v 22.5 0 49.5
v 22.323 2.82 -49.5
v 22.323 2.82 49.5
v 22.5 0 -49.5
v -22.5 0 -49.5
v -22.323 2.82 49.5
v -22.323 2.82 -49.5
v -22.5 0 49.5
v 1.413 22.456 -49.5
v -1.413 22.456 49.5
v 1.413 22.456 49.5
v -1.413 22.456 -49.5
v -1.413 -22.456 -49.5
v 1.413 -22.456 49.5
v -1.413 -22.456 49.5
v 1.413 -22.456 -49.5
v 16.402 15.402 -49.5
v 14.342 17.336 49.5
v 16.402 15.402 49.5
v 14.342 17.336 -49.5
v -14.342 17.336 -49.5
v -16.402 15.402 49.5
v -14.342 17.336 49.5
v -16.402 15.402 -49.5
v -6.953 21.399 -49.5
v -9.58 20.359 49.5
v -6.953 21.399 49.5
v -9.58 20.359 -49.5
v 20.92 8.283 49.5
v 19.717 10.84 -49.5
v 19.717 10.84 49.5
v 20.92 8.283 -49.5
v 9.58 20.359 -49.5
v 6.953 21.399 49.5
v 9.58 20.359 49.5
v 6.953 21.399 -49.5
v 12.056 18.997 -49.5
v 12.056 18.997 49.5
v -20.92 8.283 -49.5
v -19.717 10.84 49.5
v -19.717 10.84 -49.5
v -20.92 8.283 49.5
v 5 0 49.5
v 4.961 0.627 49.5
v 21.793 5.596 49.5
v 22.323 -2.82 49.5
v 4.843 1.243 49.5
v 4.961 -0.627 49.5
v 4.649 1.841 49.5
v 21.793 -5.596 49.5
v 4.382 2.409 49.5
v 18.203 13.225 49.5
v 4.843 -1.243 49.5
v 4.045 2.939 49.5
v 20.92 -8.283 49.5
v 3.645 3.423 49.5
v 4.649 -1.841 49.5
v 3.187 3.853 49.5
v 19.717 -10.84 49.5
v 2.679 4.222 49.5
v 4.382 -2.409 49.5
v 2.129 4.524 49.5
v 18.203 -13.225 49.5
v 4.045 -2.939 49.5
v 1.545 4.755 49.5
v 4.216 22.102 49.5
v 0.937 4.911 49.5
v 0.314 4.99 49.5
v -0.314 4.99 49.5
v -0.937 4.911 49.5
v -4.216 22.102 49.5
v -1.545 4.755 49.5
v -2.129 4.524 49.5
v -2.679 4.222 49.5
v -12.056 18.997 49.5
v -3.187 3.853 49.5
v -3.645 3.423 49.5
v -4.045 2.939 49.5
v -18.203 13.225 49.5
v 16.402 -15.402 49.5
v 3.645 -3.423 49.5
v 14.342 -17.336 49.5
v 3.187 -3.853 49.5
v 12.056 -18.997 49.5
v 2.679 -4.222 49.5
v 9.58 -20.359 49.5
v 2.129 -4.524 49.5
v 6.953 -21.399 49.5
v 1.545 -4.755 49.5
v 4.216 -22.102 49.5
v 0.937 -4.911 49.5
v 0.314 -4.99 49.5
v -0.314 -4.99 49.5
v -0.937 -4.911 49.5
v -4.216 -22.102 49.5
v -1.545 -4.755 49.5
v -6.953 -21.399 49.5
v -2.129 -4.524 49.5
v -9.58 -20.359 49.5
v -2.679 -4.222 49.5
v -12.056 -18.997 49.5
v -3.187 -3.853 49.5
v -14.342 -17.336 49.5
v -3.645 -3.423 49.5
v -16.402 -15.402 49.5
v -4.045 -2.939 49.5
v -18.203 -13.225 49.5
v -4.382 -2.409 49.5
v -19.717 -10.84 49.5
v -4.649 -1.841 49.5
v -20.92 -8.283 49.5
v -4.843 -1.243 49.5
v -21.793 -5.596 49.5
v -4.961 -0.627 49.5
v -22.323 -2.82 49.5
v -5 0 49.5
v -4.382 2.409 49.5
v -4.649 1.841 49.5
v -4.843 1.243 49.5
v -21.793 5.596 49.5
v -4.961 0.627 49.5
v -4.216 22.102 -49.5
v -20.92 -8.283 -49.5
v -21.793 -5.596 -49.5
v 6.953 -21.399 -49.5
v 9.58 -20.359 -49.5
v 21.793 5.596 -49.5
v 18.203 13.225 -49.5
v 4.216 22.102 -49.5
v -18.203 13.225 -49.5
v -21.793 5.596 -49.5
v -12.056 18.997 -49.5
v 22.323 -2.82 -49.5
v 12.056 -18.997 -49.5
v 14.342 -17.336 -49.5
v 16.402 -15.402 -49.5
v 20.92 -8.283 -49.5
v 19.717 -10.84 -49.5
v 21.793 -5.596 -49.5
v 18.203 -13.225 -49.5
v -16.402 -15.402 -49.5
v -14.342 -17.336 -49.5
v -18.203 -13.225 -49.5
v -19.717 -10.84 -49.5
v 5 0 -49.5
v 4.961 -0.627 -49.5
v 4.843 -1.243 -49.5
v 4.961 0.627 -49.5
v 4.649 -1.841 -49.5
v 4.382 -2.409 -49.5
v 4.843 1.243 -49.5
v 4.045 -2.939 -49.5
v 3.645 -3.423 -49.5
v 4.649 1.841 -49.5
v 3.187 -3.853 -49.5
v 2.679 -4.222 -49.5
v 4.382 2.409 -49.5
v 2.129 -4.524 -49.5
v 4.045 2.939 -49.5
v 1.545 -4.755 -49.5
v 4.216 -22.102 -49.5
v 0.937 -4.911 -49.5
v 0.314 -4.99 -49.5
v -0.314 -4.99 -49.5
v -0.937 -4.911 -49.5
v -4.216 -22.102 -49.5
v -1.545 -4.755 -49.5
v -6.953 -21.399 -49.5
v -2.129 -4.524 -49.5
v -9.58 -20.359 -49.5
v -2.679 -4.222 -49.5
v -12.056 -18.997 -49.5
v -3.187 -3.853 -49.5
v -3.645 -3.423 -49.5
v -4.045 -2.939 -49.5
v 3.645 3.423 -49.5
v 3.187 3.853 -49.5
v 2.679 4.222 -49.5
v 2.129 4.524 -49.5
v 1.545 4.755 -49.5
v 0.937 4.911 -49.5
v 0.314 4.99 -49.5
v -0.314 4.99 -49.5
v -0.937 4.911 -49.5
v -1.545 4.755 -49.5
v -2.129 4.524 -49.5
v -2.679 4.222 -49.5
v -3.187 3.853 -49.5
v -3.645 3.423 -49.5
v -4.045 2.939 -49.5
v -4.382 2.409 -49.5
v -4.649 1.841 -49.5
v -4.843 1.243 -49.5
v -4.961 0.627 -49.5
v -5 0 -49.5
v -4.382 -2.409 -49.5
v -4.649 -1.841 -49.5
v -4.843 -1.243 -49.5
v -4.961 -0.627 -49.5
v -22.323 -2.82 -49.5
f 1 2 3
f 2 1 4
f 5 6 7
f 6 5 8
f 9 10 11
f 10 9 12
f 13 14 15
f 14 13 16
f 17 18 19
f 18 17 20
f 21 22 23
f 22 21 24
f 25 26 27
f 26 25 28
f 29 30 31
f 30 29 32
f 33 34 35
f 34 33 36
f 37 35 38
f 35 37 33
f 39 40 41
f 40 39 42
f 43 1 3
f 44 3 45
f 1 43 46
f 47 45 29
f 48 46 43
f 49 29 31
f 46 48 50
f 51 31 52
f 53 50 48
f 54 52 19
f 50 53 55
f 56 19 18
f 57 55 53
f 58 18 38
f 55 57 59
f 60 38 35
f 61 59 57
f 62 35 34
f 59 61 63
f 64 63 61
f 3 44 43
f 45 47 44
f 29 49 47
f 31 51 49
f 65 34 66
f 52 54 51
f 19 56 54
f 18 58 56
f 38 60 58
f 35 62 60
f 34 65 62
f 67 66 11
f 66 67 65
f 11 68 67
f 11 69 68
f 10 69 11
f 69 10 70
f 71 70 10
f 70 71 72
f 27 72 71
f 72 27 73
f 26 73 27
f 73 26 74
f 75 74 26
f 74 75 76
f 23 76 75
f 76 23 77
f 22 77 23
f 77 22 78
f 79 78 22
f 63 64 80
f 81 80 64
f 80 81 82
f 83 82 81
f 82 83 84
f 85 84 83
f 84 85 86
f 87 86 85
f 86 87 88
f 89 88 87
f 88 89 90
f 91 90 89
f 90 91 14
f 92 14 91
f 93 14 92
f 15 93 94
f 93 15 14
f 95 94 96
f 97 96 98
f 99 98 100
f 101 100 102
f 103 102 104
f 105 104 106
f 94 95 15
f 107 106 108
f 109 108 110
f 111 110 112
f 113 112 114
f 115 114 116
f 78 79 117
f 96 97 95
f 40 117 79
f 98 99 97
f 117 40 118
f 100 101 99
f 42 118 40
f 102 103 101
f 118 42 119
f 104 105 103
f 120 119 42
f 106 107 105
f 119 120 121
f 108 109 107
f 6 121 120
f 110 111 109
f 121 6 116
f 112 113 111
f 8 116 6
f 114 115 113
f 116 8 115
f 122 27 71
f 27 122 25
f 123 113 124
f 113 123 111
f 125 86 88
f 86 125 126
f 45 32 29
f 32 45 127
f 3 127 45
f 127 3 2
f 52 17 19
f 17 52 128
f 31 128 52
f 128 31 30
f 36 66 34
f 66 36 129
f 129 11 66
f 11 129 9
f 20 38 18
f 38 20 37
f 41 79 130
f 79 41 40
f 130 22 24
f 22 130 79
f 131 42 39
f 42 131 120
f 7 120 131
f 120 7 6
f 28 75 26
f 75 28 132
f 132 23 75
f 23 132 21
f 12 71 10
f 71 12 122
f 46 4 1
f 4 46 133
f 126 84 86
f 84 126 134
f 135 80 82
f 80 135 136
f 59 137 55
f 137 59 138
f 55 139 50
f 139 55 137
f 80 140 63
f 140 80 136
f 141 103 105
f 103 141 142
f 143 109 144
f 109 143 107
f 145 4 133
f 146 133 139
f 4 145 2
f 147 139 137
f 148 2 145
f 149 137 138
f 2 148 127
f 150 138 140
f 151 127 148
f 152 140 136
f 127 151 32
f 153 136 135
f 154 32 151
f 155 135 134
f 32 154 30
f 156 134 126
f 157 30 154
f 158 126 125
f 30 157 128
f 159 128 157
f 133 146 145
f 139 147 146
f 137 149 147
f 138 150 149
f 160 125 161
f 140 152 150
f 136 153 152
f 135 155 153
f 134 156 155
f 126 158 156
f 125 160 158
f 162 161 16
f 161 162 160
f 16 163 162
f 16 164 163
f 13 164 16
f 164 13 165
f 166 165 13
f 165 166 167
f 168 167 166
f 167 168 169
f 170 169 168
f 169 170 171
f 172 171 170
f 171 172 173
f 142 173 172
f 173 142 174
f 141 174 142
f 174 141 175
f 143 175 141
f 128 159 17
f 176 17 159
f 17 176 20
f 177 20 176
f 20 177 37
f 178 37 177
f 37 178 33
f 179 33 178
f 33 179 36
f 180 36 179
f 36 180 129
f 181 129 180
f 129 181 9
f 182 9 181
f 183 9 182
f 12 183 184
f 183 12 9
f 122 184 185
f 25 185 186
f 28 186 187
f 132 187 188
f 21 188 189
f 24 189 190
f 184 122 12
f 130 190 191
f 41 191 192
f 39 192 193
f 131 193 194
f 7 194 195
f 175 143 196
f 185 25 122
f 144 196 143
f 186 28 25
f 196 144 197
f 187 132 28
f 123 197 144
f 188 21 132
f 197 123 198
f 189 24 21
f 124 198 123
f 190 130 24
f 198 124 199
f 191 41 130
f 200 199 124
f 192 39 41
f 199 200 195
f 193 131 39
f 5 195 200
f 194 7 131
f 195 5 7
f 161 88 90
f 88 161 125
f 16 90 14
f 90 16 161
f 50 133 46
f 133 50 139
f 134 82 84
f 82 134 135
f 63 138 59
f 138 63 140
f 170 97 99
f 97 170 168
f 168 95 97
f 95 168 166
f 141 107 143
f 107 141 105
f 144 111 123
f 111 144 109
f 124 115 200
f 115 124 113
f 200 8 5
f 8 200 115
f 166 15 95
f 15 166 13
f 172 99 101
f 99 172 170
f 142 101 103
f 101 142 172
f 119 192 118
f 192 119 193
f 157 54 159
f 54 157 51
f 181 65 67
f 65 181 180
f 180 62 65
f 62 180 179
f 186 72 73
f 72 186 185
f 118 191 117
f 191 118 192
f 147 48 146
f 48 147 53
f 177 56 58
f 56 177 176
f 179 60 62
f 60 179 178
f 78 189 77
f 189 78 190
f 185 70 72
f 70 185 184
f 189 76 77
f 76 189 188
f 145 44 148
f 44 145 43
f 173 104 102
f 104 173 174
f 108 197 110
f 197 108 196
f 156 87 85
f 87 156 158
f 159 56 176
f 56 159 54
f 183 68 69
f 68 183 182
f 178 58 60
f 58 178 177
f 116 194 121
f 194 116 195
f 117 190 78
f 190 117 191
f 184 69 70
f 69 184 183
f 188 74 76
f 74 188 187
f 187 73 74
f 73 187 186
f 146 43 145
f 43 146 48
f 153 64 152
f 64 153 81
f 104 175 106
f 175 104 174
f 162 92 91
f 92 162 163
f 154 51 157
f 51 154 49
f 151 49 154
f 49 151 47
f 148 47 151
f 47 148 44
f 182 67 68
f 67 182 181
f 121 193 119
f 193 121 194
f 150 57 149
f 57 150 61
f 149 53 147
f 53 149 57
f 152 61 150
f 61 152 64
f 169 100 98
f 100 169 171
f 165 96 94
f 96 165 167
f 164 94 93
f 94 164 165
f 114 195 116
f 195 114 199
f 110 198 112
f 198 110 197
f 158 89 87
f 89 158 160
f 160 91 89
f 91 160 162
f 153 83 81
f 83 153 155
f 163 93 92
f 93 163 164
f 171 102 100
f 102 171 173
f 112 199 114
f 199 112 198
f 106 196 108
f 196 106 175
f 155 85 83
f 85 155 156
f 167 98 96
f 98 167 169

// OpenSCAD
$fn = 50;


difference() {
	union() {
		translate(v = [0, 0, -49.5000000000]) {
			cylinder(h = 99, r = 22.5000000000);
		}
	}
	union() {
		translate(v = [0, 0, -100.0000000000]) {
			cylinder(h = 200, r = 5);
		}
	}
}
